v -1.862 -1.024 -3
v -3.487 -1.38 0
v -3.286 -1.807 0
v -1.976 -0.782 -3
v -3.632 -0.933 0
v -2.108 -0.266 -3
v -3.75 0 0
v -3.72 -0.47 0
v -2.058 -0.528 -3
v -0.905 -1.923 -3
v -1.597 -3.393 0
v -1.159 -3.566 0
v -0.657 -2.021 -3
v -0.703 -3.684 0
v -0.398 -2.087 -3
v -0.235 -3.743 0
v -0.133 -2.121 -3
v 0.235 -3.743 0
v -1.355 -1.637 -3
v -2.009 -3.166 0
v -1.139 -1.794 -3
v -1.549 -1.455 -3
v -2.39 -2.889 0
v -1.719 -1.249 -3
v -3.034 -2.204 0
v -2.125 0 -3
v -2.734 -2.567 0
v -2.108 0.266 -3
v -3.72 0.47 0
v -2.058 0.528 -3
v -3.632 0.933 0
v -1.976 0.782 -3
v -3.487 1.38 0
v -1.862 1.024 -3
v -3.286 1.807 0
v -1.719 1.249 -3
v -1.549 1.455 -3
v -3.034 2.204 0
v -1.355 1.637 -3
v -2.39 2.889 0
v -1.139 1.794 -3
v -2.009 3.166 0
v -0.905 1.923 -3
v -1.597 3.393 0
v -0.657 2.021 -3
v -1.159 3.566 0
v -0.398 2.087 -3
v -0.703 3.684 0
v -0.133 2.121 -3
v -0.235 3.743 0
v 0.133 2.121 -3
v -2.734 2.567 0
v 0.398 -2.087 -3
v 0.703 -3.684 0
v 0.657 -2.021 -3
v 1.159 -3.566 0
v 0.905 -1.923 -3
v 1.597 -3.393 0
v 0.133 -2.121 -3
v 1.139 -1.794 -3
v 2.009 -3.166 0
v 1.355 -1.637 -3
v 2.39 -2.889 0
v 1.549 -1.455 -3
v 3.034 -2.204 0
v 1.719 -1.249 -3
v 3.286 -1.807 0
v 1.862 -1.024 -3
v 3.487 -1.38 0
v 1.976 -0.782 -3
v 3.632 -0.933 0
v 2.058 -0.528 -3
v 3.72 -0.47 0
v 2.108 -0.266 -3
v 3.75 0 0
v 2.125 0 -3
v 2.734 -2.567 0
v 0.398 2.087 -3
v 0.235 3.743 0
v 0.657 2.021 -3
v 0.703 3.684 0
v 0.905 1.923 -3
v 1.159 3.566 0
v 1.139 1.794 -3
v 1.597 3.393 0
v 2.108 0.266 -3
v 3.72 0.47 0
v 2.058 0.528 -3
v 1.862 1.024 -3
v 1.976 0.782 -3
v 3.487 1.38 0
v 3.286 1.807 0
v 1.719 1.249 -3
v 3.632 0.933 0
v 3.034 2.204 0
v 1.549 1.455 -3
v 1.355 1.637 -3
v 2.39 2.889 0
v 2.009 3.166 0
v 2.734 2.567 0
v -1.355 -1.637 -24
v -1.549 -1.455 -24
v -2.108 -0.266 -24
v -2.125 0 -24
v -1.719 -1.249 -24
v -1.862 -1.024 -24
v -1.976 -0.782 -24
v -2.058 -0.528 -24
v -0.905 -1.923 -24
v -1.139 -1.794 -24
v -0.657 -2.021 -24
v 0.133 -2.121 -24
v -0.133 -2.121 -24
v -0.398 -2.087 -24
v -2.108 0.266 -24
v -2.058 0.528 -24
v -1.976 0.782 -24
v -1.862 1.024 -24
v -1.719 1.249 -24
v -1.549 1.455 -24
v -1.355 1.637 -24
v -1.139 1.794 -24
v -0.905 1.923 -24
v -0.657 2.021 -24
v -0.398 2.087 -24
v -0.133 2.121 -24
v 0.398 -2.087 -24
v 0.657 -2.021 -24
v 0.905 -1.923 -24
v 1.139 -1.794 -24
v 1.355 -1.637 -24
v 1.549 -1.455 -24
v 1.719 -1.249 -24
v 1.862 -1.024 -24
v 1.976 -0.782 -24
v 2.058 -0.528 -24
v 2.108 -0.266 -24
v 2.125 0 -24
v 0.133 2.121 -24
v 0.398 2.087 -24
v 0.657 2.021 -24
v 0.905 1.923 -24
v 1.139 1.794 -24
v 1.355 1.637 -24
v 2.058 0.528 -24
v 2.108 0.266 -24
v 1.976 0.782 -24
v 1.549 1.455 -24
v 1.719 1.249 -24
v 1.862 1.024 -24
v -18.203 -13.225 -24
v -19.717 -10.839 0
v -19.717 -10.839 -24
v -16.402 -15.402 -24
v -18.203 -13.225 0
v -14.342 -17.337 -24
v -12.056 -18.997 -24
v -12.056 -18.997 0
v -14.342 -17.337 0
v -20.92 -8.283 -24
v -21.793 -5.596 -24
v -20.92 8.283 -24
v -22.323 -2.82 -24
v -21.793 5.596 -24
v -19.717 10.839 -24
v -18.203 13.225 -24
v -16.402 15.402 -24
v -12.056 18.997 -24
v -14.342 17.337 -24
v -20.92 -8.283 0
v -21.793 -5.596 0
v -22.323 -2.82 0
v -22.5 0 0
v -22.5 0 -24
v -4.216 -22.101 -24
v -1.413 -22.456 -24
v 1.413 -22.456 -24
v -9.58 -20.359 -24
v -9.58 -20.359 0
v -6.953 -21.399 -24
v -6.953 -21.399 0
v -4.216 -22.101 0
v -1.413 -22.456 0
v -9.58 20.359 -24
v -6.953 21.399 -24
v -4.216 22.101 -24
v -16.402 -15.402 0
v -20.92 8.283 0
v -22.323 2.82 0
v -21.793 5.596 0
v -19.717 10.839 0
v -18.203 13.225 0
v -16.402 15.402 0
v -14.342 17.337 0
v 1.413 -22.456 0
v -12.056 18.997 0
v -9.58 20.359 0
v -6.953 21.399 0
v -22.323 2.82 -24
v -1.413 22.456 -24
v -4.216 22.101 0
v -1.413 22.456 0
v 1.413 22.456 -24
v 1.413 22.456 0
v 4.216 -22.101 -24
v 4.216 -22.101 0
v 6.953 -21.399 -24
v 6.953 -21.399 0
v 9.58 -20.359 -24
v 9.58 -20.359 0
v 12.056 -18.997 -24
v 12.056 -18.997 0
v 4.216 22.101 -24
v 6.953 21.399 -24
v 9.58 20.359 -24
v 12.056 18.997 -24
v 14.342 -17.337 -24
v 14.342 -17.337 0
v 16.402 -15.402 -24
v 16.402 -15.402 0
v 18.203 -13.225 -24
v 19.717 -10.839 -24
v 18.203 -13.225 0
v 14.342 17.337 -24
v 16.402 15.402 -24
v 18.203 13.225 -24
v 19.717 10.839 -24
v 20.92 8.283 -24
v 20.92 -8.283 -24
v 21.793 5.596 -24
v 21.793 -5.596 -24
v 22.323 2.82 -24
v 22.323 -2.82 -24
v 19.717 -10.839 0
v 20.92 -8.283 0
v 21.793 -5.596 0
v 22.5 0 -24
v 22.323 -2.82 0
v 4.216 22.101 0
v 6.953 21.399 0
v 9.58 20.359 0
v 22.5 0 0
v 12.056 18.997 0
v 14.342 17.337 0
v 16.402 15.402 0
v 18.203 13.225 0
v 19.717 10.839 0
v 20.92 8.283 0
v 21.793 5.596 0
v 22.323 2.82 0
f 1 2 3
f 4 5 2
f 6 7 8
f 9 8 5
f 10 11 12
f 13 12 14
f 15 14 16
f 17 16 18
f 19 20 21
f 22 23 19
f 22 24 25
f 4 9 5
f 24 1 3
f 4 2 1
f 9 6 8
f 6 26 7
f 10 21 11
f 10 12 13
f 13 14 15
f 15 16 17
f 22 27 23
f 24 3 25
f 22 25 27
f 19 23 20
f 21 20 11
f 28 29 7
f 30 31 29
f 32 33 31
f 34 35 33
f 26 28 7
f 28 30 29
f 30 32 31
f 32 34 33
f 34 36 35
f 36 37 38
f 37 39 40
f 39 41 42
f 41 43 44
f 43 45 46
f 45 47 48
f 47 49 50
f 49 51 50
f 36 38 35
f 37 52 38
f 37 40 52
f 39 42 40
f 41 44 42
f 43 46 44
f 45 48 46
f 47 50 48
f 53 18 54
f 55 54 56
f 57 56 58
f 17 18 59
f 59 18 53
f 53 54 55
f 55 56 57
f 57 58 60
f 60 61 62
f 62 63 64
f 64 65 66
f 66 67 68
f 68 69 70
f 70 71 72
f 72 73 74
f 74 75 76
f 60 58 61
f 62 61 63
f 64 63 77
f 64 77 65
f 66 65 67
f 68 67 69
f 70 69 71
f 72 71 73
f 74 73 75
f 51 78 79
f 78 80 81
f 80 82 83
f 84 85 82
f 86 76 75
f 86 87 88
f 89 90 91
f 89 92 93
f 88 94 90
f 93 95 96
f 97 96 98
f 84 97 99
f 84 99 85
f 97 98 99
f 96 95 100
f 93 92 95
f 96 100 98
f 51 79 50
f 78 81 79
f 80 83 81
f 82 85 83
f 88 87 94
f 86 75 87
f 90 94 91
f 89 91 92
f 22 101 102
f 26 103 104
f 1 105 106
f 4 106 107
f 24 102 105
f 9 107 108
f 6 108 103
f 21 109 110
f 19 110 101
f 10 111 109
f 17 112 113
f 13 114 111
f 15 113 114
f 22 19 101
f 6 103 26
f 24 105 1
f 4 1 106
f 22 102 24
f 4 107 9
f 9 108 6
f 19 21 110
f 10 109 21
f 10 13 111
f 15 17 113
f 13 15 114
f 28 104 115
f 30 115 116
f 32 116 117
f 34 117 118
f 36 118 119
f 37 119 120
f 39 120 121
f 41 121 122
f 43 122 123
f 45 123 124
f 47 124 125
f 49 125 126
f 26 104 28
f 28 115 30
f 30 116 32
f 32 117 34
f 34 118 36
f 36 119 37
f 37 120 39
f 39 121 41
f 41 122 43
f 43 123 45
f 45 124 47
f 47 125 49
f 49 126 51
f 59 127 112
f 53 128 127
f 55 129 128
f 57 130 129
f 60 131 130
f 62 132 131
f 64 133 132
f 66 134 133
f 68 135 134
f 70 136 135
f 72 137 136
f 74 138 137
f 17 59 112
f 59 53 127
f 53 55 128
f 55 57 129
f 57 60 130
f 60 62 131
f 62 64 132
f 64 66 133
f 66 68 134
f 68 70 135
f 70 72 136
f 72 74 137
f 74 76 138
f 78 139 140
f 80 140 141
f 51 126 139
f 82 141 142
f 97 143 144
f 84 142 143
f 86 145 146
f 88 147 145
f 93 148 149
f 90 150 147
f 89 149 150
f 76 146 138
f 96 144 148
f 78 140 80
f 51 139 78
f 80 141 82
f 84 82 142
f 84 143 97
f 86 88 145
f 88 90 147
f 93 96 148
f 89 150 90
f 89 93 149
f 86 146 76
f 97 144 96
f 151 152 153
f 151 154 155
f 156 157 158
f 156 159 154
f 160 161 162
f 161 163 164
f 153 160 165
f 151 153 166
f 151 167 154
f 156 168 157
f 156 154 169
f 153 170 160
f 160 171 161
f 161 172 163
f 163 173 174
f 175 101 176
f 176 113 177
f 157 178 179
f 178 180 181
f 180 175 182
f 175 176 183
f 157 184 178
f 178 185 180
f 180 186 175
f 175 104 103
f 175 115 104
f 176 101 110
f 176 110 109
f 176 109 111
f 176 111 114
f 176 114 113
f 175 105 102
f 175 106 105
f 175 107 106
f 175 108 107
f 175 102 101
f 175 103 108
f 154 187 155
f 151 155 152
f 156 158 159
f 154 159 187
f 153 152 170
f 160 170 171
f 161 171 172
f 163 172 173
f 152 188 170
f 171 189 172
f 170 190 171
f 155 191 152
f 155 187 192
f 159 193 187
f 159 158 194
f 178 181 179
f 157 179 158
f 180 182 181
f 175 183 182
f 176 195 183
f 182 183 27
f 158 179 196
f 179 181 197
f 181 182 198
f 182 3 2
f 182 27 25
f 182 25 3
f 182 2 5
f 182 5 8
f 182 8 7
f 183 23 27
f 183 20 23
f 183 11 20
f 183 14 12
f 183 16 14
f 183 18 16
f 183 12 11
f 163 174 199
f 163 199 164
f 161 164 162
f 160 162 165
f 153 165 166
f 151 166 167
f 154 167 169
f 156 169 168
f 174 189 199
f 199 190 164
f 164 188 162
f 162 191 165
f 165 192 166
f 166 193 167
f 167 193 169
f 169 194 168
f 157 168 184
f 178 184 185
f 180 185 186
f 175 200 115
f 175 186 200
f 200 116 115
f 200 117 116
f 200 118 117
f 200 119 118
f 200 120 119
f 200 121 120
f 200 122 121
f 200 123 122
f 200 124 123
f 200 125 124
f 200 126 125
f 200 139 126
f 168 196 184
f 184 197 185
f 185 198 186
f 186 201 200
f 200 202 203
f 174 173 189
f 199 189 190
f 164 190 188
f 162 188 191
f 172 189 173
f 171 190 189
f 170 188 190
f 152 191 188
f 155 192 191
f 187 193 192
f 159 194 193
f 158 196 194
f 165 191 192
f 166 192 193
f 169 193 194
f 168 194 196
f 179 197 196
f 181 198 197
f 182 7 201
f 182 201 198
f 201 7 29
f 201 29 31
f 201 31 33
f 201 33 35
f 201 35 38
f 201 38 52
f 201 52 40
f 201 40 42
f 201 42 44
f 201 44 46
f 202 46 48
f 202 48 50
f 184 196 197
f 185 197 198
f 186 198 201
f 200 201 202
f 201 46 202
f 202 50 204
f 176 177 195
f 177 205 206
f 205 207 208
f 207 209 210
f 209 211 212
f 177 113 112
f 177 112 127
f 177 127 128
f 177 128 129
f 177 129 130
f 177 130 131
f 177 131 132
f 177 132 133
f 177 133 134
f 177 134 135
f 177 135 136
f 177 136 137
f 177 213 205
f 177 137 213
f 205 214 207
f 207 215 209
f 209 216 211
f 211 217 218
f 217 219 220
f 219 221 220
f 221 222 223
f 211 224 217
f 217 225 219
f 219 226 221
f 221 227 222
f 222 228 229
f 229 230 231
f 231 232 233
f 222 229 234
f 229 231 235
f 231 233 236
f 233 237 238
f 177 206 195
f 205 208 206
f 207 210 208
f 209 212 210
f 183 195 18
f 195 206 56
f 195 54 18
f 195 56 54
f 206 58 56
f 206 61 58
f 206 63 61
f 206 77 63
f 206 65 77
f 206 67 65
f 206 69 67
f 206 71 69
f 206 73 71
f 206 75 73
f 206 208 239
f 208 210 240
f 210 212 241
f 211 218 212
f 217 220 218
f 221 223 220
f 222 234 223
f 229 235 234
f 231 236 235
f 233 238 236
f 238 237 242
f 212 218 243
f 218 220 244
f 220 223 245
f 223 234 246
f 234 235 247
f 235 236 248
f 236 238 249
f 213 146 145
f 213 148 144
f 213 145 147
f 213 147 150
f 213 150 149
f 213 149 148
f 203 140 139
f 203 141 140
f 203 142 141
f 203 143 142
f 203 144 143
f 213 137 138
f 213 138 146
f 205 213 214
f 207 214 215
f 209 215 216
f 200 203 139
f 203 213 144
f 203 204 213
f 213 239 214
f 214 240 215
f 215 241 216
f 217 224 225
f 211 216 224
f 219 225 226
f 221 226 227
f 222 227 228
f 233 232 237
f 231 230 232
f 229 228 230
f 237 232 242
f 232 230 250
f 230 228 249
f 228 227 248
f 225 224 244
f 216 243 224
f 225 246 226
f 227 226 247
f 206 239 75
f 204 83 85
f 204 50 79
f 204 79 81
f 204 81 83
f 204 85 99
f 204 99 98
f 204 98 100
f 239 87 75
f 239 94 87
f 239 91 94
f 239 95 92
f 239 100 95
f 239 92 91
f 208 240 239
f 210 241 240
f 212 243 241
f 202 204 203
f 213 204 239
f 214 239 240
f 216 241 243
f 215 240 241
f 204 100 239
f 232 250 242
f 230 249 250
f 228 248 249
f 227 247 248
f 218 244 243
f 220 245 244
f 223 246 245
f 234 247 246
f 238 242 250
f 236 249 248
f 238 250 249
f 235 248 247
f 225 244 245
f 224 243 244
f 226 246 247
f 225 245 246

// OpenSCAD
$fn = 50;

difference() {
	union() {
		translate(v = [0, 0, -24.0]) {
			cylinder(h = 24, r = 22.5);
		}
	}
	union() {
		translate(v = [0, 0, 0]) {
			rotate(a = [0, 0, 0]) {
				difference() {
					union() {
						translate(v = [0, 0, -27.0]) {
							cylinder(h = 27, r = 2.0);
						}
						translate(v = [0, 0, -3]) {
							cylinder(h = 3, r1 = 2.125, r2 = 3.75);
						}
						translate(v = [0, 0, -27.0]) {
							cylinder(h = 27, r = 2.125);
						}
						translate(v = [0, 0, -27.0]) {
							cylinder(h = 27, r = 2.0);
						}
					}
					union();
				}
			}
		}
	}
}
